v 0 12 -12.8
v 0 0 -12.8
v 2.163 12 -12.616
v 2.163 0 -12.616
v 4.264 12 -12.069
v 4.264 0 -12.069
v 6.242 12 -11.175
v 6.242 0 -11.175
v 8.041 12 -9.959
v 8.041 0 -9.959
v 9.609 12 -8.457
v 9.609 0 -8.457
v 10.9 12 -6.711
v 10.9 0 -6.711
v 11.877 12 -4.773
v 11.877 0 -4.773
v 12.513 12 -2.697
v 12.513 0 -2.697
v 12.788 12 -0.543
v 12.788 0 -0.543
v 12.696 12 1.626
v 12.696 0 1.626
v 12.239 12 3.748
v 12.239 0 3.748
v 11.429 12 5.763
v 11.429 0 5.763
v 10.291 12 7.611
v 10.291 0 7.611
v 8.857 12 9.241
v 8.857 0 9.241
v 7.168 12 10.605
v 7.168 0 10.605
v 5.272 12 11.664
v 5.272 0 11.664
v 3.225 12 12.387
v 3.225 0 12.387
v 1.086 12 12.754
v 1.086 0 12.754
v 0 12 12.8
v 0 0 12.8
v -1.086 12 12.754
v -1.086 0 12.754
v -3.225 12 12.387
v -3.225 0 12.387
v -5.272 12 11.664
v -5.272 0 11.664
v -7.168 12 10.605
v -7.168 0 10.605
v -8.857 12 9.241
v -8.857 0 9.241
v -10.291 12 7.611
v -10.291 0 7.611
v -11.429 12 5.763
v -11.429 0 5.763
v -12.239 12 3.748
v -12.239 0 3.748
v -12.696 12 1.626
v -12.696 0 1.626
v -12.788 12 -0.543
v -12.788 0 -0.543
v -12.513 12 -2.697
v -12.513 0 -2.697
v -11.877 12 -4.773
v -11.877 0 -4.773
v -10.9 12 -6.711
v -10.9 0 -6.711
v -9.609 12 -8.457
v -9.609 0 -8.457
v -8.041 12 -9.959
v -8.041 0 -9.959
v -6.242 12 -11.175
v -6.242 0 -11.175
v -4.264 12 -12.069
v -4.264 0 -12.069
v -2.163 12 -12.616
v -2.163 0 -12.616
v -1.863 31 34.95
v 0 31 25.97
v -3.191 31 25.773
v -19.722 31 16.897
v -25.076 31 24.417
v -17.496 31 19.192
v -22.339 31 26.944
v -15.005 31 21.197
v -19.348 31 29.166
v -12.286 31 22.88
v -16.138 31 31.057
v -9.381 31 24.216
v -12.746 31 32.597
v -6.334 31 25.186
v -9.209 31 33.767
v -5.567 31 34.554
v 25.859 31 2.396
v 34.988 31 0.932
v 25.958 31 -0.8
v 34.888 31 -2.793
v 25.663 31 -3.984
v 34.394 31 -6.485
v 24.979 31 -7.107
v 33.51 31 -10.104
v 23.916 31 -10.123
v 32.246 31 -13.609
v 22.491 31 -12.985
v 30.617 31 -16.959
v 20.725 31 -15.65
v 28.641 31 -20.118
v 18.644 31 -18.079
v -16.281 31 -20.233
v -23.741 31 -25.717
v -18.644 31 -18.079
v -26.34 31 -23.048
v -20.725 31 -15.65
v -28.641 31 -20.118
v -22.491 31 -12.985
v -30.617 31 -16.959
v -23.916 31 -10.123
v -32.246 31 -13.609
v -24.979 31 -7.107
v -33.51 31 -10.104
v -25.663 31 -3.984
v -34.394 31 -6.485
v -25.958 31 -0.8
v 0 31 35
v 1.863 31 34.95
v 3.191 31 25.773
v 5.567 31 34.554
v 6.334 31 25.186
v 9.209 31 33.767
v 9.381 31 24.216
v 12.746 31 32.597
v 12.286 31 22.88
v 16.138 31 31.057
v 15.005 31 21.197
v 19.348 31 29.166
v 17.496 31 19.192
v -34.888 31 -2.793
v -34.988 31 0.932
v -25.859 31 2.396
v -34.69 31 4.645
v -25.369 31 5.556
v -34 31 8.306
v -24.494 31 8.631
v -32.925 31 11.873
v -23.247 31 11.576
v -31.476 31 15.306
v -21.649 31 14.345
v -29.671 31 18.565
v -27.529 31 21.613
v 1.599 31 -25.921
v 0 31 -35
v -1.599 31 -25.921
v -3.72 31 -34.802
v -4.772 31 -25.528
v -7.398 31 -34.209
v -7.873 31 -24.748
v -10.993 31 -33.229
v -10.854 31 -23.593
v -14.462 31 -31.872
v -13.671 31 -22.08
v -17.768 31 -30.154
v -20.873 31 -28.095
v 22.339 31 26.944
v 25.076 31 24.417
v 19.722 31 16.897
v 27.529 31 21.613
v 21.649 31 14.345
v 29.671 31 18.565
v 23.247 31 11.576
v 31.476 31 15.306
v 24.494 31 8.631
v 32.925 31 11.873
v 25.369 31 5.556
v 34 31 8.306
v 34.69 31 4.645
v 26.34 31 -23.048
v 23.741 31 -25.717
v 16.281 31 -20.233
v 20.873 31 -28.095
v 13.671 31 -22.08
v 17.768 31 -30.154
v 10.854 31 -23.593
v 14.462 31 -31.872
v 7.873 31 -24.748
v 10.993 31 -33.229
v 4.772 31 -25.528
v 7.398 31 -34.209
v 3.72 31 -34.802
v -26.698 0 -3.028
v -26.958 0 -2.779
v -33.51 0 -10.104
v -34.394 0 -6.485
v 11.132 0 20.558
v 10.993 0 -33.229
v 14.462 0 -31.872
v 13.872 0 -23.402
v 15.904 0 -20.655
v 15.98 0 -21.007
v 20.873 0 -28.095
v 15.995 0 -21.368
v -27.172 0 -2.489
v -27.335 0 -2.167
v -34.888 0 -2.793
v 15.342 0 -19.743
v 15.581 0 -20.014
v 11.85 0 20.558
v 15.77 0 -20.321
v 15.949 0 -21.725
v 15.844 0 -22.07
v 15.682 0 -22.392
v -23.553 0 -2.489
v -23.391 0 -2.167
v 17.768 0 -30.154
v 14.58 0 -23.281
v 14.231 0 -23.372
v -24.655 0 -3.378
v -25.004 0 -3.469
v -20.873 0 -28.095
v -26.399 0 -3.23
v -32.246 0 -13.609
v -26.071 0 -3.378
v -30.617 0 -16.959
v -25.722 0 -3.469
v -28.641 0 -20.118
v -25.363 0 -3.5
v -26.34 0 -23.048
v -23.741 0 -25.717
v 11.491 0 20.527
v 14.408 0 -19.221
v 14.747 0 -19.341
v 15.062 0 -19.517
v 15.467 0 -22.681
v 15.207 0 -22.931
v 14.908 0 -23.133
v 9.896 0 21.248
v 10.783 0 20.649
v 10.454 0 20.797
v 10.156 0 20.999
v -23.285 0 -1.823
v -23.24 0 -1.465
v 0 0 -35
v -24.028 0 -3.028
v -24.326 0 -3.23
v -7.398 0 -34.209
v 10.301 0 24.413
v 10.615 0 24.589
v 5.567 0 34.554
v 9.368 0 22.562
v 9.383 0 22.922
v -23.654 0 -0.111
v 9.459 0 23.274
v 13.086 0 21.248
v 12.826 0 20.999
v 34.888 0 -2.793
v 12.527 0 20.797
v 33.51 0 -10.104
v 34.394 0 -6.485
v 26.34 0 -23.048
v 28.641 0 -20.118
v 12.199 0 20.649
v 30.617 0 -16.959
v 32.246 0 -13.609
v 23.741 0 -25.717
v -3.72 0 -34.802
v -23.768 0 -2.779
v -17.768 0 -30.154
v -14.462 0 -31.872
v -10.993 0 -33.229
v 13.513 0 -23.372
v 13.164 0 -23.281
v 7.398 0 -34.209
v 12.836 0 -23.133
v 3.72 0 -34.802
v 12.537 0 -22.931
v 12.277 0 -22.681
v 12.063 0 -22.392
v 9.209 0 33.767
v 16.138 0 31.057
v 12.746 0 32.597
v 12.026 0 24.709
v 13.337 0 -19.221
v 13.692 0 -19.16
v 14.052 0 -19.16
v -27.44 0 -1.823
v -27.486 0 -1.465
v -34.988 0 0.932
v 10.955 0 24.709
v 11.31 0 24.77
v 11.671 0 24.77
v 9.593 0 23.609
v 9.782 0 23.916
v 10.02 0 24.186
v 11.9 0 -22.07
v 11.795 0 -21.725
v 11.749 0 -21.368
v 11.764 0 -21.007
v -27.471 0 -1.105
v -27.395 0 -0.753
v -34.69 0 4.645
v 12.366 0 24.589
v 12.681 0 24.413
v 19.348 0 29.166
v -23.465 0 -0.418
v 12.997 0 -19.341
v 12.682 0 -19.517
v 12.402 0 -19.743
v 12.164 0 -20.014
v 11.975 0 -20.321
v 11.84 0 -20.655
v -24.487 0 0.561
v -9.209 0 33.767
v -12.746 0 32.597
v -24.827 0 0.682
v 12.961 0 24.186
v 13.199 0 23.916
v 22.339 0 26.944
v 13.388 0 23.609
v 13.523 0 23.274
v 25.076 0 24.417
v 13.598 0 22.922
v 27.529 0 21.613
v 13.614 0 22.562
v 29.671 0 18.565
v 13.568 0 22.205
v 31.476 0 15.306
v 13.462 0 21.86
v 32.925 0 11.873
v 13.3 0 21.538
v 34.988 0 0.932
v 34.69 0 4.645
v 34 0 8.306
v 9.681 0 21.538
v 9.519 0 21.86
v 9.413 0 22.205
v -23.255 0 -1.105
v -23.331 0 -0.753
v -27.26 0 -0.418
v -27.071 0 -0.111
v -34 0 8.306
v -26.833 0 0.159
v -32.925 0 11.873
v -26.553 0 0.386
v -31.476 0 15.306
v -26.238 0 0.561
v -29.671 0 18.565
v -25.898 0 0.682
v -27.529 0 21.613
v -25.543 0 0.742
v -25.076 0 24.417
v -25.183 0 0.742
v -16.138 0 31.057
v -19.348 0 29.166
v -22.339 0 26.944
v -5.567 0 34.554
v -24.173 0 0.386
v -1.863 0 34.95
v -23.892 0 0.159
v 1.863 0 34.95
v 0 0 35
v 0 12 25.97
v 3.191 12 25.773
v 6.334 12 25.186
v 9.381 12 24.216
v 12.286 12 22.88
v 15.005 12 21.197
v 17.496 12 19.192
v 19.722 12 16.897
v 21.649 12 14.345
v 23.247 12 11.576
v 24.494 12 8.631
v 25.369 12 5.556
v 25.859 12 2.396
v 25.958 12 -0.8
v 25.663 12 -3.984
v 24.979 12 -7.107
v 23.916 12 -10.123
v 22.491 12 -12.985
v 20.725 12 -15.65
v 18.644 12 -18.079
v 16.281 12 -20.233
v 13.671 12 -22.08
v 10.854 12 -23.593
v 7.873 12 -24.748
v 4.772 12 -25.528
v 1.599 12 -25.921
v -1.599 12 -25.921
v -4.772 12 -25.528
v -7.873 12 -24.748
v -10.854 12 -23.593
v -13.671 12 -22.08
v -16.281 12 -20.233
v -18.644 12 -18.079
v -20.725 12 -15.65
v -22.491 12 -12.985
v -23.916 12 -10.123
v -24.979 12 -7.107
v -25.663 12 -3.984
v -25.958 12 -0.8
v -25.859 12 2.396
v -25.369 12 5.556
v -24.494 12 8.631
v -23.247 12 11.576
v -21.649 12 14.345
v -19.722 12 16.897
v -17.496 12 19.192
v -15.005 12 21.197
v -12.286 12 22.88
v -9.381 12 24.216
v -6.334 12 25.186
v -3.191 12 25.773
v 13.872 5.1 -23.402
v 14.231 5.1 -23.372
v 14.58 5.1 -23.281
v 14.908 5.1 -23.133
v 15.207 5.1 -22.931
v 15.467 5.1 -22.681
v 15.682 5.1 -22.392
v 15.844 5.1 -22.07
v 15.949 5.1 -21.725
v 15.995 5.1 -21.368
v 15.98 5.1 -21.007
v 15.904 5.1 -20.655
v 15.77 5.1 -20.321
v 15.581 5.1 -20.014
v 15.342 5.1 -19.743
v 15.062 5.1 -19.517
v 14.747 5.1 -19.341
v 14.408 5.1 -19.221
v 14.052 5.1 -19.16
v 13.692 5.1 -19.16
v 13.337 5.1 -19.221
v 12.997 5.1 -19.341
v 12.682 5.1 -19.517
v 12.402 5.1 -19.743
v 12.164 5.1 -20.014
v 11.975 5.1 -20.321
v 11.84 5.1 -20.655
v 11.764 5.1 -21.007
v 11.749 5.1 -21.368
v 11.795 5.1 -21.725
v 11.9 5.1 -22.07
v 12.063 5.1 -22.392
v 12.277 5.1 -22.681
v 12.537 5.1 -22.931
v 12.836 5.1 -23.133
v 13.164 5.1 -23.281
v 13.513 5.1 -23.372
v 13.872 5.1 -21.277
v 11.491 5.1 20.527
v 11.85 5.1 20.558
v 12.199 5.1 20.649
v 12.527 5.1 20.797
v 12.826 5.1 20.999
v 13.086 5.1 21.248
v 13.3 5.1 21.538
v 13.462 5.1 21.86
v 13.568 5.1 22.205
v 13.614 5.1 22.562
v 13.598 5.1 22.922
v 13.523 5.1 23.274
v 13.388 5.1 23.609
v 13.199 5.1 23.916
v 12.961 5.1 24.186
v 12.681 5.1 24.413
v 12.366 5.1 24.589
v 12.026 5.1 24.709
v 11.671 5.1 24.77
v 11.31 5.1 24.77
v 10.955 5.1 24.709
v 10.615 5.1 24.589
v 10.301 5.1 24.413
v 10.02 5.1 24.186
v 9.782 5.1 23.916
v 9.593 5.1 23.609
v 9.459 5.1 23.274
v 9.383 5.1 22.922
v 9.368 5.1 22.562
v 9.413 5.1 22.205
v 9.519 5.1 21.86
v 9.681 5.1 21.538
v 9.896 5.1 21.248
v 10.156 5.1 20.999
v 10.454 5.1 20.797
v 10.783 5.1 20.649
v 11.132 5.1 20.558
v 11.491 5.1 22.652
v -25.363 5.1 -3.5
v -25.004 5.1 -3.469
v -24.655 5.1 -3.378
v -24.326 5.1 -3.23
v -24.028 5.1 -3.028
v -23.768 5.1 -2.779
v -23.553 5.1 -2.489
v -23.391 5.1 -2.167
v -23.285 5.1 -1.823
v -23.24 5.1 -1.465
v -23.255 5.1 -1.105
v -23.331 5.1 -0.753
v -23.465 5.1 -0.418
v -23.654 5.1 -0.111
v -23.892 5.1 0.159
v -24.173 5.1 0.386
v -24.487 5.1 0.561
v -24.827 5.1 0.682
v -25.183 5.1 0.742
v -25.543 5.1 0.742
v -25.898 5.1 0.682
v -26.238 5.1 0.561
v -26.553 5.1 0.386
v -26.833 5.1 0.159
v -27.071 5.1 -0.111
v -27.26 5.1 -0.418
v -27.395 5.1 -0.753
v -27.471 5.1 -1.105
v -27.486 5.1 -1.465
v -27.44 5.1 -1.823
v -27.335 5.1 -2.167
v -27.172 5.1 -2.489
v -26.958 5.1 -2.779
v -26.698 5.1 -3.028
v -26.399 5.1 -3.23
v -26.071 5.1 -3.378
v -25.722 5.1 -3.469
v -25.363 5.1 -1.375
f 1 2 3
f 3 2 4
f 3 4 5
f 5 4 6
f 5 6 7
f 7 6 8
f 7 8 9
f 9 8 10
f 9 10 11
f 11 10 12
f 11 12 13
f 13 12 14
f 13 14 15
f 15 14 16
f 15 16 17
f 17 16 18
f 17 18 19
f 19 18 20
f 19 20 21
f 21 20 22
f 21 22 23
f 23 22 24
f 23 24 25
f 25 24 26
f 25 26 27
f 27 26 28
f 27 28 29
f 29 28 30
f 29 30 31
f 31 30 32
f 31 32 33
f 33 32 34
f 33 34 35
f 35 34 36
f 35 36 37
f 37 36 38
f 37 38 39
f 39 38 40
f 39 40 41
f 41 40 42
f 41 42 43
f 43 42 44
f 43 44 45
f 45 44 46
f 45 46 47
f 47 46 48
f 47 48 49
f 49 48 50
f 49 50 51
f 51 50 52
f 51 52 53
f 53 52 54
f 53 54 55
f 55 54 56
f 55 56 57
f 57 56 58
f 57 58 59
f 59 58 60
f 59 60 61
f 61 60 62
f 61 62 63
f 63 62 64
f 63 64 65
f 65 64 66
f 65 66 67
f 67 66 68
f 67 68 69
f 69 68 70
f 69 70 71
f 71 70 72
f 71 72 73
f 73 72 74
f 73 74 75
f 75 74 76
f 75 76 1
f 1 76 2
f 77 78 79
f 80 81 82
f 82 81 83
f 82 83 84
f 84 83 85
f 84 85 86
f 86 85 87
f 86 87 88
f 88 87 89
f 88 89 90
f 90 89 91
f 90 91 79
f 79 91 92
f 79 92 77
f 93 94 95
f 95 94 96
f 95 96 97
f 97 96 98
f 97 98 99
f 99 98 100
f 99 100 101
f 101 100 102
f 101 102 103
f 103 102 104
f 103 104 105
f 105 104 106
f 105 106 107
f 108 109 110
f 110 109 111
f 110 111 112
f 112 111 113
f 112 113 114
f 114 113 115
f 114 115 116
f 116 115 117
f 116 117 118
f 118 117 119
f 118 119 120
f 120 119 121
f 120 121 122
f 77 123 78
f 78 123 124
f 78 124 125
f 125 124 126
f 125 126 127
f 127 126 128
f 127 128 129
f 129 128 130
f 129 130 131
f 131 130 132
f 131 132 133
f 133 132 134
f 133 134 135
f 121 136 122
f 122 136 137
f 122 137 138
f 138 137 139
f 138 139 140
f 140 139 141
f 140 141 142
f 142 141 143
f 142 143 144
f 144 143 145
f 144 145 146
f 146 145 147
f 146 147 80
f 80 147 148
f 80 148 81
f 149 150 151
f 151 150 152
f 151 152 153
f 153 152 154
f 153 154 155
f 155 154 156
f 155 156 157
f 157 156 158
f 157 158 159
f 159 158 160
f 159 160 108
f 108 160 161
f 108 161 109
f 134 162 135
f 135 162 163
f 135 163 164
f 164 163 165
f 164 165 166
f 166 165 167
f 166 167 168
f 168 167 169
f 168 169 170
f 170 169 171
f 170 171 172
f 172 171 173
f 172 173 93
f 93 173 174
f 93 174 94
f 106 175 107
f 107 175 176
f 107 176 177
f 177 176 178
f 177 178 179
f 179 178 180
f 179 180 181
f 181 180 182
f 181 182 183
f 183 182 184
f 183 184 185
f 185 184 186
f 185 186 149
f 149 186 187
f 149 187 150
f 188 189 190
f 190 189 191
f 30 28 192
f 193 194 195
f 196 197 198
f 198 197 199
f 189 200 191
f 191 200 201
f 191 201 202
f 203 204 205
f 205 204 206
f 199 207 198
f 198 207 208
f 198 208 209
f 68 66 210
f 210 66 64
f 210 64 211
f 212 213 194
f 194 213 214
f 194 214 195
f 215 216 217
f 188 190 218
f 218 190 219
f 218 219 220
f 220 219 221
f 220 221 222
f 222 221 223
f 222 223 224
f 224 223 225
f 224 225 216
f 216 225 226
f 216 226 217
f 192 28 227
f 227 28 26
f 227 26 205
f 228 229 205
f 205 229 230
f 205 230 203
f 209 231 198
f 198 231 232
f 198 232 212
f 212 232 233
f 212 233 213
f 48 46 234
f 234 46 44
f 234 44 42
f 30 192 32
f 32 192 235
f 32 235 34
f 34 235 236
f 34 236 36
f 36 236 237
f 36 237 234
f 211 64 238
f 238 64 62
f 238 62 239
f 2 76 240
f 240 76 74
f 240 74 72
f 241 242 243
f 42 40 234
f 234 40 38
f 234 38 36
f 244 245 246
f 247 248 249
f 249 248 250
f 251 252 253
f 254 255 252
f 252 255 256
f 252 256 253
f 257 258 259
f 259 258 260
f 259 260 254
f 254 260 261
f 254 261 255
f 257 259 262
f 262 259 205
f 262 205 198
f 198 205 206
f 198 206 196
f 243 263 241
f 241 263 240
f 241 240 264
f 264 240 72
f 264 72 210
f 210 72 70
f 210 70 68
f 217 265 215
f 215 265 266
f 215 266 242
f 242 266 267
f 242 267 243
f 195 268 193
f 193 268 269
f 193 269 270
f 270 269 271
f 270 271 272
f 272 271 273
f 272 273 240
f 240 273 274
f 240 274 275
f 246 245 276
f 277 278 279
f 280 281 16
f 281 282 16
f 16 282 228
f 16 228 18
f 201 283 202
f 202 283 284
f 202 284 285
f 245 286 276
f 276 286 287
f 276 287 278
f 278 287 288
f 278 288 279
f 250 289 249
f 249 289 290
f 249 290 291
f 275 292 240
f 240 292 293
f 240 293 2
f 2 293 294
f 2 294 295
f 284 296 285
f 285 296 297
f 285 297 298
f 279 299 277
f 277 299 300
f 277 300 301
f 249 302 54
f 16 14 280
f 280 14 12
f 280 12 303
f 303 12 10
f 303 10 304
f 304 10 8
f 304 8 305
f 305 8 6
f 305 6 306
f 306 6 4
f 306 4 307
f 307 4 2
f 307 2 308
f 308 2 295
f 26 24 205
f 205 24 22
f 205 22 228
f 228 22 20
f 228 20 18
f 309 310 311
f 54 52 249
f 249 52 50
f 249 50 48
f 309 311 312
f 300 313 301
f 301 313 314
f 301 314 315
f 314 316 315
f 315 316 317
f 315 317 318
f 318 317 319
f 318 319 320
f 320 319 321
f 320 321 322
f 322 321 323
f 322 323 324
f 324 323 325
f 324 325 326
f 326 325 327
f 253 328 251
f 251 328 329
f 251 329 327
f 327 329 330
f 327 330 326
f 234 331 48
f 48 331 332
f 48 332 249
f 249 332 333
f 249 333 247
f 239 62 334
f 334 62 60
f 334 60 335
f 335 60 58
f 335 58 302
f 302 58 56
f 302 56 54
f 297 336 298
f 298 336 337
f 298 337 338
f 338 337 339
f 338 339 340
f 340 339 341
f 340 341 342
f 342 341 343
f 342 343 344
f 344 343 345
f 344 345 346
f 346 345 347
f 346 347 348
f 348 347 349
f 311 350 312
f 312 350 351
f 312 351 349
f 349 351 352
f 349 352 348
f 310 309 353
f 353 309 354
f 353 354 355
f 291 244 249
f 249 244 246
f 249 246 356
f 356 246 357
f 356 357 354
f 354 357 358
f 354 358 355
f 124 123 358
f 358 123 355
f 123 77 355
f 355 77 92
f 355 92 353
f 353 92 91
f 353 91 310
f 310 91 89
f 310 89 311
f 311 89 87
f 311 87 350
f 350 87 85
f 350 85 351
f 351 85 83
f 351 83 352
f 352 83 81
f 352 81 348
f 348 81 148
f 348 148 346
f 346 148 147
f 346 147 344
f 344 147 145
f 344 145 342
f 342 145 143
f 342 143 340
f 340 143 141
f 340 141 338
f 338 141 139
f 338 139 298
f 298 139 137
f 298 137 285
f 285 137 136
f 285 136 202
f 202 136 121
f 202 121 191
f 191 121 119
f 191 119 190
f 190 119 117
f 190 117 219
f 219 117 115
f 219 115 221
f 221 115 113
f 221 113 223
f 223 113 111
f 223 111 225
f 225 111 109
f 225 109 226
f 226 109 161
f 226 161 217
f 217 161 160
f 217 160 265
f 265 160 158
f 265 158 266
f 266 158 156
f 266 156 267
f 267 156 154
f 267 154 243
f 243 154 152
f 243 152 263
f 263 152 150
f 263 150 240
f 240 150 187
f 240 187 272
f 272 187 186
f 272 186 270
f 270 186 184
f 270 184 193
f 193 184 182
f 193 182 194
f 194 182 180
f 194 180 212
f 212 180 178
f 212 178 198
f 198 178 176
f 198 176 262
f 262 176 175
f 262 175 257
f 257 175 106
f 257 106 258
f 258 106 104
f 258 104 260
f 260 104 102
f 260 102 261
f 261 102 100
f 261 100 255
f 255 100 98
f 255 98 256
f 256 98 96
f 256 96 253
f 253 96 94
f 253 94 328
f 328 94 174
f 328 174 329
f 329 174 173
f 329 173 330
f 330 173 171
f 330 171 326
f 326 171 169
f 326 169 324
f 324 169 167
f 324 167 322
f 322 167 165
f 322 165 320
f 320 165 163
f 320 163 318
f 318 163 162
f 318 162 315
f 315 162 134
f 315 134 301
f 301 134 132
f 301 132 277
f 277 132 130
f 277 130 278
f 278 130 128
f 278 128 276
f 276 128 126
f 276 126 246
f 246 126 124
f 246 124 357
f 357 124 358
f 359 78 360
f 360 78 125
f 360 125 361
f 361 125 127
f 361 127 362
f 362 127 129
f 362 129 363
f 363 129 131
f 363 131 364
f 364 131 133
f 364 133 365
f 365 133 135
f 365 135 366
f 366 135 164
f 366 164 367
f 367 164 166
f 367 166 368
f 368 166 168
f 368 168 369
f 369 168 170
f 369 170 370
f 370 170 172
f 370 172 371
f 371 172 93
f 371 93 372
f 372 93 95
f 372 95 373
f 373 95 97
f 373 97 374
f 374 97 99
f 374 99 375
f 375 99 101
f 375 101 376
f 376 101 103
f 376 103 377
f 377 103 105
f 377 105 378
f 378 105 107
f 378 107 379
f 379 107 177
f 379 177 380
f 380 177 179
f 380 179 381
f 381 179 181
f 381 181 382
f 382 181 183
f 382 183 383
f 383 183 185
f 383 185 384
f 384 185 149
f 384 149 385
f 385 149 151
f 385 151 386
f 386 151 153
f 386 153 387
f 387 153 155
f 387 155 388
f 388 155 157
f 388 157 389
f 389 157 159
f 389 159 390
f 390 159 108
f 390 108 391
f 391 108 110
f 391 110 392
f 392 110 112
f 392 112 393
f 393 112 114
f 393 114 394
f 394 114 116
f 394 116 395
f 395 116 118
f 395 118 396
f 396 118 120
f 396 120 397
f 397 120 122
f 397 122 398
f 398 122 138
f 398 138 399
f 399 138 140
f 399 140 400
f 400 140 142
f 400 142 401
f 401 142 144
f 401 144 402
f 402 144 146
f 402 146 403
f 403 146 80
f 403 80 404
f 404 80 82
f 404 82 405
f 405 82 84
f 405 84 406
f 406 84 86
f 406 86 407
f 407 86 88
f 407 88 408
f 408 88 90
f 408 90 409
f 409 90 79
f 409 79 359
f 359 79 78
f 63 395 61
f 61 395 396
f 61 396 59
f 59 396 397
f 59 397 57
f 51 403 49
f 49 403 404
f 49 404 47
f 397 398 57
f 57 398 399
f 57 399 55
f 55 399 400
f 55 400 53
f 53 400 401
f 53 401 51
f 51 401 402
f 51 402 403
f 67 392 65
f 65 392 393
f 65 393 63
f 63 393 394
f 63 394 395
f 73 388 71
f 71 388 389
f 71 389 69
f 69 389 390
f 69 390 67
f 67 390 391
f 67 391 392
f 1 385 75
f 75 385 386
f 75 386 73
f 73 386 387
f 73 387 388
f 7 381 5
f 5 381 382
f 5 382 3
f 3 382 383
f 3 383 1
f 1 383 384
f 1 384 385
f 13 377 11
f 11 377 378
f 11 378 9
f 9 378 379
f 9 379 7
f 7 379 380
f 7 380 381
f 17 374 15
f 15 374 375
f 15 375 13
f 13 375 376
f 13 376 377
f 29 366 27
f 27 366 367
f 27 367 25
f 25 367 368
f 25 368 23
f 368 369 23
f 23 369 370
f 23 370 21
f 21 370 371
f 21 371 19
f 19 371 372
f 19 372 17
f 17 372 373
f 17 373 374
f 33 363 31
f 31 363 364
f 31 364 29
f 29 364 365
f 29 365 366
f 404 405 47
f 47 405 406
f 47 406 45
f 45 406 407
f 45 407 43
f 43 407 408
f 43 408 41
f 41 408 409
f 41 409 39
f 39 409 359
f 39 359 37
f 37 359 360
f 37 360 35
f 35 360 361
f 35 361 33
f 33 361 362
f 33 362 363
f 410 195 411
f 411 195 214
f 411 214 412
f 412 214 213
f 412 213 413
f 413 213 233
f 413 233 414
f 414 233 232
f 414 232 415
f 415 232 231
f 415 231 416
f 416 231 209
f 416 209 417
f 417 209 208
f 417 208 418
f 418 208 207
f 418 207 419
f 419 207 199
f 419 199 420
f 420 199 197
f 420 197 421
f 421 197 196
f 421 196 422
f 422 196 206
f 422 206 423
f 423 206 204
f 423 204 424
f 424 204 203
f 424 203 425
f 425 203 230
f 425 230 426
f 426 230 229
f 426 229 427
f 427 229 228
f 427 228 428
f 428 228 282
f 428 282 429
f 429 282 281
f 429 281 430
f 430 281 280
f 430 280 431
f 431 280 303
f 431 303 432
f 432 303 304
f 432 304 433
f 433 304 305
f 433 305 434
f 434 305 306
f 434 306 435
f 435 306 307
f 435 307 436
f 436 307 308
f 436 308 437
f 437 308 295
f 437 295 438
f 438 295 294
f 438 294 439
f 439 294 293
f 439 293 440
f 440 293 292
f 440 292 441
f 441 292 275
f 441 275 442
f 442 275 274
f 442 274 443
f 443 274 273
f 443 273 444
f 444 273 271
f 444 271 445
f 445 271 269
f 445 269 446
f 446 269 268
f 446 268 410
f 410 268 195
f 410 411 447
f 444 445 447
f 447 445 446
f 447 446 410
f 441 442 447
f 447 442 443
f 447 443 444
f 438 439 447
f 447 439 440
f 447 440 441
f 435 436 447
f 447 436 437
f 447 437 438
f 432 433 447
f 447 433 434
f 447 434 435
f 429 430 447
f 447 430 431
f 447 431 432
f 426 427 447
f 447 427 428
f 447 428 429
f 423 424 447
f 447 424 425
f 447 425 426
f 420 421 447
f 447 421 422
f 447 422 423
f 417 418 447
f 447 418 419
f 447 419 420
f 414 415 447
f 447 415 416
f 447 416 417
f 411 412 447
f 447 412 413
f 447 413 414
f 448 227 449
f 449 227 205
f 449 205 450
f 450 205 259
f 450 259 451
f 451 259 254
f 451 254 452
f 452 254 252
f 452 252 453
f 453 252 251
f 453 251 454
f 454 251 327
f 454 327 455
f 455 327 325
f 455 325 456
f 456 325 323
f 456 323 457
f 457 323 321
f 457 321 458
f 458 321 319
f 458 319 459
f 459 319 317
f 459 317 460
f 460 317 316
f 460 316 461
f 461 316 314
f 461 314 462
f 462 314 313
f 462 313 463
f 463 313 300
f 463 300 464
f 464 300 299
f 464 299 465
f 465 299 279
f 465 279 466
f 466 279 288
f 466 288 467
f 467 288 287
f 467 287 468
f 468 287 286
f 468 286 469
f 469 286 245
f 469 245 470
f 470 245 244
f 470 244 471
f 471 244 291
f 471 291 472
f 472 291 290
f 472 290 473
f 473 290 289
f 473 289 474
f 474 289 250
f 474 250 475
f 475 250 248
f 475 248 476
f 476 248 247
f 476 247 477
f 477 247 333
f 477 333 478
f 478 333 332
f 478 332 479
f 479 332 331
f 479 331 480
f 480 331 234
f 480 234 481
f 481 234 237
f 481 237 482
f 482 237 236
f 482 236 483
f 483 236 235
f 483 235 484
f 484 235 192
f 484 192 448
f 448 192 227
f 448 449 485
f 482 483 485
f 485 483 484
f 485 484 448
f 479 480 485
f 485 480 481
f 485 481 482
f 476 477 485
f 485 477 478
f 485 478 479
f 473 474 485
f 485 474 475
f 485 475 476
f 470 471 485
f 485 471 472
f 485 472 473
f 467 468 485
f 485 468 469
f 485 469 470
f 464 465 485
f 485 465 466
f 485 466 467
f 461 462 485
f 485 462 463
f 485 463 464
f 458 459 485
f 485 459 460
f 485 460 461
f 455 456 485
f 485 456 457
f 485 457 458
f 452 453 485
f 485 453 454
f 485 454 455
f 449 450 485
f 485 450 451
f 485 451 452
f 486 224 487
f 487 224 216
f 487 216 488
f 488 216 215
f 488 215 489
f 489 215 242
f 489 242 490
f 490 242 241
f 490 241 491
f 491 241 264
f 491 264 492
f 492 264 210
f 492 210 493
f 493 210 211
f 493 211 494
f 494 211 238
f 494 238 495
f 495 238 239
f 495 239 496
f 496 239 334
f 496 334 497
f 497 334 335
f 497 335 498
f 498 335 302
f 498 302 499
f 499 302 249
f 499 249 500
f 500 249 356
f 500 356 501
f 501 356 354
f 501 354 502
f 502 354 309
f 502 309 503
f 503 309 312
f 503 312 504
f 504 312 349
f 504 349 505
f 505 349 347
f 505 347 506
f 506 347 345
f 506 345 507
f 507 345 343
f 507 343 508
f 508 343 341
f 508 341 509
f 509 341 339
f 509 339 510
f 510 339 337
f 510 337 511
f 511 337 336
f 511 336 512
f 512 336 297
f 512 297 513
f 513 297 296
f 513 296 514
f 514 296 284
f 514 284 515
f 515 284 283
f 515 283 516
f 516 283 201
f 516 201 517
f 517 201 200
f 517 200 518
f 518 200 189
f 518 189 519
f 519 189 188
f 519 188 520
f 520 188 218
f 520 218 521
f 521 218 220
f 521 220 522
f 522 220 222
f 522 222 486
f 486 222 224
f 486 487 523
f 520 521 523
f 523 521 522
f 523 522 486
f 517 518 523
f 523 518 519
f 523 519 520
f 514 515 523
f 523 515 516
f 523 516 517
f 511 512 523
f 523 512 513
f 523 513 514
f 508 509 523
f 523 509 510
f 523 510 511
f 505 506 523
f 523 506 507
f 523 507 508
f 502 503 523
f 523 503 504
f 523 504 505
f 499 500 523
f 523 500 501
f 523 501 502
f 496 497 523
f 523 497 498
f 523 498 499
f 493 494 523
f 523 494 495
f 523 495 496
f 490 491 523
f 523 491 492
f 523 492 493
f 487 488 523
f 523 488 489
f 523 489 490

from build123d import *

# Parameters (mm, degrees)
SKETCH1_R           = 35
SKETCH1_R_2         = 12.8
BOSS_EXTRUDE1_DEPTH = 31
SKETCH4_R           = 25.97
CUT_EXTRUDE3_DEPTH  = 19
SKETCH10_R          = 2.125
CUT_EXTRUDE6_DEPTH  = 5.1


with BuildPart() as part:
    # Sketch1 → Boss-Extrude1 (new body)
    with BuildSketch(Plane(origin=(0, 0, 0), x_dir=(1, 0, 0), z_dir=(0, 1, 0))):
        with Locations(Location((0, 0, 0), (0, 0, 270))):
            Circle(SKETCH1_R)
        with Locations(Location((0, 0, 0), (0, 0, 270))):
            Circle(SKETCH1_R_2, mode=Mode.SUBTRACT)
    extrude(amount=BOSS_EXTRUDE1_DEPTH)

    # Sketch4 → Cut-Extrude3 (cut)
    with BuildSketch(Plane(origin=(0, 31, 0), x_dir=(1, 0, 0), z_dir=(0, 1, 0))):
        with Locations(Location((0, 0, 0), (0, 0, 270))):
            Circle(SKETCH4_R)
    extrude(amount=-CUT_EXTRUDE3_DEPTH, mode=Mode.SUBTRACT)

    # Sketch10 → Cut-Extrude6 (cut)
    with BuildSketch(Plane.XZ):
        with Locations(Location((-25.362762045, -1.374882343, 0), (0, 0, 270))):
            Circle(SKETCH10_R)
        with Locations(Location((11.490697986, 22.652237412, 0), (0, 0, 270))):
            Circle(SKETCH10_R)
        with Locations(Location((13.872064059, -21.277355069, 0), (0, 0, 270))):
            Circle(SKETCH10_R)
    extrude(amount=-CUT_EXTRUDE6_DEPTH, mode=Mode.SUBTRACT)


solid = part.part
